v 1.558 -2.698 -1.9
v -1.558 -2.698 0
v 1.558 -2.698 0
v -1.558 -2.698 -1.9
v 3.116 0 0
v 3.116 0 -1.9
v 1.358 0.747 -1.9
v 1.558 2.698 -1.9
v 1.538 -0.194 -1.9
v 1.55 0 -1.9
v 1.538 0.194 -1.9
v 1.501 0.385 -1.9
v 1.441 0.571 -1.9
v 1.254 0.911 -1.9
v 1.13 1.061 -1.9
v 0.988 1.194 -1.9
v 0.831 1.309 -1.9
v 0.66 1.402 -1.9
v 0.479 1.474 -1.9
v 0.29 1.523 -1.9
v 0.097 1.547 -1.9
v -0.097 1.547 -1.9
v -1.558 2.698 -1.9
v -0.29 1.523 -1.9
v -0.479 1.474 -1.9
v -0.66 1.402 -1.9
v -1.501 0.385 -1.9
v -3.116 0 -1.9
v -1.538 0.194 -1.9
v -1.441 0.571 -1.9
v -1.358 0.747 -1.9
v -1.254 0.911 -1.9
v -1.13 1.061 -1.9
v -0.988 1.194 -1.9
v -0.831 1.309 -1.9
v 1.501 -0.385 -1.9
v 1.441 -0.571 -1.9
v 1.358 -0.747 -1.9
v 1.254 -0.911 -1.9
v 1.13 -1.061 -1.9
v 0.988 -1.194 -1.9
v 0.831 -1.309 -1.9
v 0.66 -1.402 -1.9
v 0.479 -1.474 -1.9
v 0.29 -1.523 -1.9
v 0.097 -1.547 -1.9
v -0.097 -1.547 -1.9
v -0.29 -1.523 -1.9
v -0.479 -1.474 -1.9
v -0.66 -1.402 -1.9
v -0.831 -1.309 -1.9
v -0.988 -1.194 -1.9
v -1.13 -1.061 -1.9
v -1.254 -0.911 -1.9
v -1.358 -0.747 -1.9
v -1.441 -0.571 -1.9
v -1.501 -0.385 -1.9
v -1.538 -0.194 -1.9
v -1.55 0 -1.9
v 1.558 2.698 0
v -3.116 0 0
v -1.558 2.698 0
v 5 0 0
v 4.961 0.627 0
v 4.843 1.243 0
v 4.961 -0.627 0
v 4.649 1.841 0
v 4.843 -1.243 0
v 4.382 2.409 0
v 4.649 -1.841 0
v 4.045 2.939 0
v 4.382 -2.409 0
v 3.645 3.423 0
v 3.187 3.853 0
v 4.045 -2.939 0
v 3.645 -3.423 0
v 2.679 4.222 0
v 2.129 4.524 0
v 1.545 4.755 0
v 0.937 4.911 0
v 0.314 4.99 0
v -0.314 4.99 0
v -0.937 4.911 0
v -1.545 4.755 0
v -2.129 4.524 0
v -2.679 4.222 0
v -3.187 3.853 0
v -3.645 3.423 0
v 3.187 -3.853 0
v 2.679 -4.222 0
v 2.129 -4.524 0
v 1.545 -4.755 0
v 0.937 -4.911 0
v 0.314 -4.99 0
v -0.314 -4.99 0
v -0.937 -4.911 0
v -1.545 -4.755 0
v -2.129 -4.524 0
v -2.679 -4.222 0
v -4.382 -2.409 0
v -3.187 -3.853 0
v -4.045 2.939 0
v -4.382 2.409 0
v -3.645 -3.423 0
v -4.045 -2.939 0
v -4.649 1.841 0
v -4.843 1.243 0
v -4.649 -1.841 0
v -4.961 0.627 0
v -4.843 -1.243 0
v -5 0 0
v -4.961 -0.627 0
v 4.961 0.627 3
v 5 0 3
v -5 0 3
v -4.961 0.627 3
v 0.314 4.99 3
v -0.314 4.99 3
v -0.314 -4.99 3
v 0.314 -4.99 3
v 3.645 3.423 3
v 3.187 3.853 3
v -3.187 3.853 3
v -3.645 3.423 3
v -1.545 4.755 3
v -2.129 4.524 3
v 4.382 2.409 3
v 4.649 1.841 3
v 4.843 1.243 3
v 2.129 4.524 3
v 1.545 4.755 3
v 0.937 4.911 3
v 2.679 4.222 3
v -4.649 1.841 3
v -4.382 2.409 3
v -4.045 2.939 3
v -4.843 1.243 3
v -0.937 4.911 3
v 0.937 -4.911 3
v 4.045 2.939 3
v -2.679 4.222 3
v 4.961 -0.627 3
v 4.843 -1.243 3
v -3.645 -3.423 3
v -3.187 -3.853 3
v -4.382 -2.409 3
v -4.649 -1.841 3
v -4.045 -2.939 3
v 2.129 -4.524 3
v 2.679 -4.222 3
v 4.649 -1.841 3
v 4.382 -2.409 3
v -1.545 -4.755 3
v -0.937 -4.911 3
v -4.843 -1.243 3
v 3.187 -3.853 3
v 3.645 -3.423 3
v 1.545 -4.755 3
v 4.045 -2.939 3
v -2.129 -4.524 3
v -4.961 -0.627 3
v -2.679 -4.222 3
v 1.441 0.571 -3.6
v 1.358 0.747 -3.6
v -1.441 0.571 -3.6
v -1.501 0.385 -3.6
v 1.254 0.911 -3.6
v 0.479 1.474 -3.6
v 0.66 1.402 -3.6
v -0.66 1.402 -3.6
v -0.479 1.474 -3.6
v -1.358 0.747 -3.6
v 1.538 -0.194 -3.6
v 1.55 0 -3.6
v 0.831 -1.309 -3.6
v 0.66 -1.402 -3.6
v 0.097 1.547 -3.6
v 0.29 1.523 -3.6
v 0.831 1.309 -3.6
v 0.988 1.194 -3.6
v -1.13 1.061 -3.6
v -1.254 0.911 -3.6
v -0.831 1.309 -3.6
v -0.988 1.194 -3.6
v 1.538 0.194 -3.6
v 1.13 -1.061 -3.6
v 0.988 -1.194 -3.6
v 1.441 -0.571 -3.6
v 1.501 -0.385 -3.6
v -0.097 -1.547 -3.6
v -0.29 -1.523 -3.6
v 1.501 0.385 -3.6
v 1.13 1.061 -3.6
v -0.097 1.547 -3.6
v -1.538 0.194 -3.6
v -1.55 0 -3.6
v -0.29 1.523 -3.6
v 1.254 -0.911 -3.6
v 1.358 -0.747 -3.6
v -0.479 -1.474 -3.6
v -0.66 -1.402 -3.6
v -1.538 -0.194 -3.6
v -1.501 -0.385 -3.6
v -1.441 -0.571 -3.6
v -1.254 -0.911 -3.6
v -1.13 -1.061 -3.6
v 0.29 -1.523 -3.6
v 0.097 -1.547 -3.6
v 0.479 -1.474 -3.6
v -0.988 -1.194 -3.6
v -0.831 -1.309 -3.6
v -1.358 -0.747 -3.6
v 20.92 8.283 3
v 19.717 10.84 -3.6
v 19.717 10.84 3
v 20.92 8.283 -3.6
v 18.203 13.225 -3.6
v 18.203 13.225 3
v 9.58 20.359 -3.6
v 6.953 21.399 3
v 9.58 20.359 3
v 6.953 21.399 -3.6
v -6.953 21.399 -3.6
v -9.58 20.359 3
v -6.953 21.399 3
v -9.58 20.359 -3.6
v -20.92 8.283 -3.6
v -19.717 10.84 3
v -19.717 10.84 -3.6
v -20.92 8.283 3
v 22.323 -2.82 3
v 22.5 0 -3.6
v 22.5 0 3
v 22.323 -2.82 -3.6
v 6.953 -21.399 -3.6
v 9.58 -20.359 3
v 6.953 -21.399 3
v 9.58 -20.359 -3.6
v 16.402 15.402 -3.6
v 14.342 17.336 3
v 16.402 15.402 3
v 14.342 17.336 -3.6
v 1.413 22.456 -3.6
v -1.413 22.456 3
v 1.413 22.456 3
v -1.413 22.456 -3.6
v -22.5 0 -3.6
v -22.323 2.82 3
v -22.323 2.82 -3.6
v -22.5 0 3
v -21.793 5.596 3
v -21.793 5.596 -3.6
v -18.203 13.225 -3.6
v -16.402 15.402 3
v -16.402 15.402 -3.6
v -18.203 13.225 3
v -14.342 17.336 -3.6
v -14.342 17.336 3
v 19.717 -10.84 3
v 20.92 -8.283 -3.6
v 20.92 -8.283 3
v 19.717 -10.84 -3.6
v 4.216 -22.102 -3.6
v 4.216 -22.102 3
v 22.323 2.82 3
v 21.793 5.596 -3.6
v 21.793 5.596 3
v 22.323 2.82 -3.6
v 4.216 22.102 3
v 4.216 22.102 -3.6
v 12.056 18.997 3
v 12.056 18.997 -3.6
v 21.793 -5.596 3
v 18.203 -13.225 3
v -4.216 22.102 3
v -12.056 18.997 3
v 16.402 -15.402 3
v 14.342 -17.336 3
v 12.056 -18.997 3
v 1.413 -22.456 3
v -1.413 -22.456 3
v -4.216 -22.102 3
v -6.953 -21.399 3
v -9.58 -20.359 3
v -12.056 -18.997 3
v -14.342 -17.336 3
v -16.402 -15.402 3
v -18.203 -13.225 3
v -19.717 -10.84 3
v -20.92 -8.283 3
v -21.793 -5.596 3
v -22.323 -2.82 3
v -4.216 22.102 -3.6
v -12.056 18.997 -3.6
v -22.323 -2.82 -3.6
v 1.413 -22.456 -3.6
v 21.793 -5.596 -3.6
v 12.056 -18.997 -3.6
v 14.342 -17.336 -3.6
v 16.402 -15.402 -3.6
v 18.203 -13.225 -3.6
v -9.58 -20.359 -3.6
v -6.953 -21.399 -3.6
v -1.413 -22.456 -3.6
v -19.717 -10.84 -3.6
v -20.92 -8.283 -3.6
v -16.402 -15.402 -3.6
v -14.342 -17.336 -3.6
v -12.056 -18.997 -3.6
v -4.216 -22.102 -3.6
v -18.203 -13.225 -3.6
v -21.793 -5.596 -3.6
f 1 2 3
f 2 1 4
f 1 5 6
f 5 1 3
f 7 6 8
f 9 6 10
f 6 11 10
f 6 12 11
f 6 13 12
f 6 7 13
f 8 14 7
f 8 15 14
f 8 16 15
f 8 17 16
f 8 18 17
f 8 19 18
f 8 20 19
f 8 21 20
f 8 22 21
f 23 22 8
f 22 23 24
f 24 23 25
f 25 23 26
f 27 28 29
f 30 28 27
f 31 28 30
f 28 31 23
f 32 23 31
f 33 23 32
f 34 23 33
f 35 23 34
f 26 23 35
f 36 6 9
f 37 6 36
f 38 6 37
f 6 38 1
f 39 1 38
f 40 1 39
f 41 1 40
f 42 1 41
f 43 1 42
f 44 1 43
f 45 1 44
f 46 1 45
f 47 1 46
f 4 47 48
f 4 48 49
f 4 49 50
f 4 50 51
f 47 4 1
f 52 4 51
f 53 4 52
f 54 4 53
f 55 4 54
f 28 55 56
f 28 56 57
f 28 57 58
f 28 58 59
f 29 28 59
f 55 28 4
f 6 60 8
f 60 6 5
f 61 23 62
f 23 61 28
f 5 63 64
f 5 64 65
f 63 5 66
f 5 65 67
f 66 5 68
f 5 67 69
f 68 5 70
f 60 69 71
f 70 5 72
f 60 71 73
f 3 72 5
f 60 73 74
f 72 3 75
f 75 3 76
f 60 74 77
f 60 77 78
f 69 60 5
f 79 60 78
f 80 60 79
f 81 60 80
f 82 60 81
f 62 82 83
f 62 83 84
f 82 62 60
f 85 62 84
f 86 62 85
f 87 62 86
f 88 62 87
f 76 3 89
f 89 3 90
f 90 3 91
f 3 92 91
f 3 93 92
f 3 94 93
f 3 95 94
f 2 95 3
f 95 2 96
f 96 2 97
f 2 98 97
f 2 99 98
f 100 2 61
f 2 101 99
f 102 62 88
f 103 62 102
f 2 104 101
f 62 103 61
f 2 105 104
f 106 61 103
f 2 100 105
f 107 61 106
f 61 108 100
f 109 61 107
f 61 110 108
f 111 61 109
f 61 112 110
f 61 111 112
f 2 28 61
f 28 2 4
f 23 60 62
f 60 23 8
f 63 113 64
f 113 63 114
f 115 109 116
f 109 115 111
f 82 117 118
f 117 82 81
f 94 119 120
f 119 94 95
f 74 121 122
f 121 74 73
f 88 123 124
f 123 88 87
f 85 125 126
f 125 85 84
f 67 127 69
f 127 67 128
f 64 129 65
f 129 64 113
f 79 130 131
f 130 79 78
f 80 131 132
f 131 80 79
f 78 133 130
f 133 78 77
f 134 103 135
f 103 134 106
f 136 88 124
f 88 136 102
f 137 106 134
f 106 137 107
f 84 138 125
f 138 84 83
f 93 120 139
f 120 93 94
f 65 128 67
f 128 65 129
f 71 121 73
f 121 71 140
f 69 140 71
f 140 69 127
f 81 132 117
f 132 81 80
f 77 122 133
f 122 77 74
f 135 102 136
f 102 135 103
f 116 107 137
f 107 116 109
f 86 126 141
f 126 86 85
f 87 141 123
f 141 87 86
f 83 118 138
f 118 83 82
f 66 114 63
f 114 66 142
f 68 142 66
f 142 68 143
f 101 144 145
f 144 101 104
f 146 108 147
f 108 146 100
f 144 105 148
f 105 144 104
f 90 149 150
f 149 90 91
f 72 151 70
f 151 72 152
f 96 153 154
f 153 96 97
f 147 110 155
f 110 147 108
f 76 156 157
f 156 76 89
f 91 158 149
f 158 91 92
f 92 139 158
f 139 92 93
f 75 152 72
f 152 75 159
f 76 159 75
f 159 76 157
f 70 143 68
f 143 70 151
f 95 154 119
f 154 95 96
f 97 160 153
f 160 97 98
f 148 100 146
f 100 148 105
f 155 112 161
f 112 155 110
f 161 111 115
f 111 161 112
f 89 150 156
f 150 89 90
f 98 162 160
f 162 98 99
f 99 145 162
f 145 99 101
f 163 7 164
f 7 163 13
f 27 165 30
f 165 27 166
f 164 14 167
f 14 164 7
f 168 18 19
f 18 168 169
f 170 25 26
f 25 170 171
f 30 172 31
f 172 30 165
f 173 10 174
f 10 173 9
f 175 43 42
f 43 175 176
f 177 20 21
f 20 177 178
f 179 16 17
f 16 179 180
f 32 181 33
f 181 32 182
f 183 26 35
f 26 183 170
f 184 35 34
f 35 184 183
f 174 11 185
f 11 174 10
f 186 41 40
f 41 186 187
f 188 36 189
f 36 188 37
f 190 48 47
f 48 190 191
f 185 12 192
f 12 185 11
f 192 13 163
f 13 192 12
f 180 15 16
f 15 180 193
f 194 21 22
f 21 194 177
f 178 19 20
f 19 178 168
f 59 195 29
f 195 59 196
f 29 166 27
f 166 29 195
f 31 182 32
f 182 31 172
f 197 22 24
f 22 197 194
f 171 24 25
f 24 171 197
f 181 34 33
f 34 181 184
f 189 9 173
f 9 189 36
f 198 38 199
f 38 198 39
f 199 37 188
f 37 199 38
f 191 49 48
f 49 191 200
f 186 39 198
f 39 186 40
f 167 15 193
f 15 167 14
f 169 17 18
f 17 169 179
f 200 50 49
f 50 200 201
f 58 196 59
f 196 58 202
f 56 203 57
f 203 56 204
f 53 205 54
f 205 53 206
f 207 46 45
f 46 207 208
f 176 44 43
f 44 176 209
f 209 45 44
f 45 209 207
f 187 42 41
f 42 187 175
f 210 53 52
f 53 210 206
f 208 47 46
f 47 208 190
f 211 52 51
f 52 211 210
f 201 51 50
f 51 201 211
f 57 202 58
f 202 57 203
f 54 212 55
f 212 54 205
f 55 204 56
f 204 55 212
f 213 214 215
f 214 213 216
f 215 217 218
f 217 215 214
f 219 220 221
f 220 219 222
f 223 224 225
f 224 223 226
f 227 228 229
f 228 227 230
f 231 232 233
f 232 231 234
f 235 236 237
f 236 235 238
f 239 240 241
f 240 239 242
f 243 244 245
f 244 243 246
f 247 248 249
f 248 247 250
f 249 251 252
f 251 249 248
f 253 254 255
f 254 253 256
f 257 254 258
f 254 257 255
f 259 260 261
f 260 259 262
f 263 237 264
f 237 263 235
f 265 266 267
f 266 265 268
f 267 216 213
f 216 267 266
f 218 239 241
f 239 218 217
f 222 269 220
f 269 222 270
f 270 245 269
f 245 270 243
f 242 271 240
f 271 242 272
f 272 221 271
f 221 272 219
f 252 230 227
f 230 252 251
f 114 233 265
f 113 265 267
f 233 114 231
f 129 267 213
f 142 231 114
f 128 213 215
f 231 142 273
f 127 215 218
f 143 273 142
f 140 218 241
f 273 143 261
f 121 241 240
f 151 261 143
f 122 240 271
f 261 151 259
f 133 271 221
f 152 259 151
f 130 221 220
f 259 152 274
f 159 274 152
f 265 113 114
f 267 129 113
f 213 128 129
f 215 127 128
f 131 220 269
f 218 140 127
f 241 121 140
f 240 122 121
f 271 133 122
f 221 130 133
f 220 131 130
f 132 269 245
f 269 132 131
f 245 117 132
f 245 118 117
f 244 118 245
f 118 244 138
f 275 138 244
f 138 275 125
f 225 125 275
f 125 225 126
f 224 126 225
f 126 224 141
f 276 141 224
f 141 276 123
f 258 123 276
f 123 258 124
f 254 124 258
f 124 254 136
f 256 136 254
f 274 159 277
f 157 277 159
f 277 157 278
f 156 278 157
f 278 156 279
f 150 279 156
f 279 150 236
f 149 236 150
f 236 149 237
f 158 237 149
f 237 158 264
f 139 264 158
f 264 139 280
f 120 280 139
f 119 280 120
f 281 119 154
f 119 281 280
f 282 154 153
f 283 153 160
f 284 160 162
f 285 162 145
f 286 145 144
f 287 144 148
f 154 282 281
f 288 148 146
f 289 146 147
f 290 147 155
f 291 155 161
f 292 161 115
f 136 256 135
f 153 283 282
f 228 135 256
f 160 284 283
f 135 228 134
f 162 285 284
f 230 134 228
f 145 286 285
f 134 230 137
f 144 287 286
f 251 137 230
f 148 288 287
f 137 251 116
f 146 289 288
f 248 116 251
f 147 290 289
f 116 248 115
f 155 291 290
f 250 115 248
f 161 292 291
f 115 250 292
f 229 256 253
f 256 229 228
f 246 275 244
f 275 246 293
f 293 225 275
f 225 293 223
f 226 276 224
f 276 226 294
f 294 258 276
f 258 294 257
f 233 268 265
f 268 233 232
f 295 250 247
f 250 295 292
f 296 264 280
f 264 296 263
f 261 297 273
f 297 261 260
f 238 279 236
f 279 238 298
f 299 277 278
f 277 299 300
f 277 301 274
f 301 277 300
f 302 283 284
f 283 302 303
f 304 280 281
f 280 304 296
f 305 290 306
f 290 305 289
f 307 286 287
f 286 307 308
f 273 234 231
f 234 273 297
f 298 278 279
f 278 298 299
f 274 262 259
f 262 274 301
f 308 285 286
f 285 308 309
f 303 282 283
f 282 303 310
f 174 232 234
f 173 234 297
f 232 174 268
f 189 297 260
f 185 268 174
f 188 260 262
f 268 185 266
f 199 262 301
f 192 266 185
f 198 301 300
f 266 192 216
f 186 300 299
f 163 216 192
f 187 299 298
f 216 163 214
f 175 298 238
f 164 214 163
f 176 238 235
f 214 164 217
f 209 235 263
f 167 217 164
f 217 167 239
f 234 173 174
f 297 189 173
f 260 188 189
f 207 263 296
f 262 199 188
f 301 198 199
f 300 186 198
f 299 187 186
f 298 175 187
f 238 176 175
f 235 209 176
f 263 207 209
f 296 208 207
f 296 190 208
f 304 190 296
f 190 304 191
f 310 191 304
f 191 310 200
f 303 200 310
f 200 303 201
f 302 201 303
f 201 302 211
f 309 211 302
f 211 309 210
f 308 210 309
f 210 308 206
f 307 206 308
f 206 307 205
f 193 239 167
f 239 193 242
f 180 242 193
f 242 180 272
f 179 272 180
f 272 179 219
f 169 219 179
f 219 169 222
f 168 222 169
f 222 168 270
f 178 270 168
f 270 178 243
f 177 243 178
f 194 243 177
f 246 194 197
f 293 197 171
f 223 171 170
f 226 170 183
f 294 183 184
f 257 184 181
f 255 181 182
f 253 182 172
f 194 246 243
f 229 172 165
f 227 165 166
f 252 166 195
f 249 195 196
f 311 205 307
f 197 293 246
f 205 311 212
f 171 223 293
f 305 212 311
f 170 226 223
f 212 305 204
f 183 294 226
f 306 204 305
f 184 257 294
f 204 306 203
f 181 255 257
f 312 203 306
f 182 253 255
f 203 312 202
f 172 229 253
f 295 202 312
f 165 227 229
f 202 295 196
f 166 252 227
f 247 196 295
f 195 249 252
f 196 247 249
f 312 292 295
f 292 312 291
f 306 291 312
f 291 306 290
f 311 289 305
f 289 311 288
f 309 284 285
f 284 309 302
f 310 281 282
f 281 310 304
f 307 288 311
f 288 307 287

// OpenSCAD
$fn = 50;

difference() {
	union() {
		translate(v = [0, 0, -3.5999999999999996]) {
			cylinder(h = 6.6, r = 22.5);
		}
	}
	union() {
		translate(v = [0, 0, 0]) {
			rotate(a = [0, 0, 0]) {
				difference() {
					union() {
						translate(v = [0, 0, -1.9]) {
							linear_extrude(height = 1.9) {
								polygon(points = [[3.1158, 0.0], [1.5579000000000005, 2.698361953111554], [-1.5578999999999994, 2.6983619531115544], [-3.1158, 3.815754496783323e-16], [-1.5579000000000014, -2.6983619531115535], [1.557899999999998, -2.6983619531115552]]);
							}
						}
					}
					union();
				}
			}
		}
		#cylinder(h = 3, r = 5.0);
		#translate(v = [0, 0, -100.0]) {
			cylinder(h = 200, r = 1.55);
		}
	}
}
